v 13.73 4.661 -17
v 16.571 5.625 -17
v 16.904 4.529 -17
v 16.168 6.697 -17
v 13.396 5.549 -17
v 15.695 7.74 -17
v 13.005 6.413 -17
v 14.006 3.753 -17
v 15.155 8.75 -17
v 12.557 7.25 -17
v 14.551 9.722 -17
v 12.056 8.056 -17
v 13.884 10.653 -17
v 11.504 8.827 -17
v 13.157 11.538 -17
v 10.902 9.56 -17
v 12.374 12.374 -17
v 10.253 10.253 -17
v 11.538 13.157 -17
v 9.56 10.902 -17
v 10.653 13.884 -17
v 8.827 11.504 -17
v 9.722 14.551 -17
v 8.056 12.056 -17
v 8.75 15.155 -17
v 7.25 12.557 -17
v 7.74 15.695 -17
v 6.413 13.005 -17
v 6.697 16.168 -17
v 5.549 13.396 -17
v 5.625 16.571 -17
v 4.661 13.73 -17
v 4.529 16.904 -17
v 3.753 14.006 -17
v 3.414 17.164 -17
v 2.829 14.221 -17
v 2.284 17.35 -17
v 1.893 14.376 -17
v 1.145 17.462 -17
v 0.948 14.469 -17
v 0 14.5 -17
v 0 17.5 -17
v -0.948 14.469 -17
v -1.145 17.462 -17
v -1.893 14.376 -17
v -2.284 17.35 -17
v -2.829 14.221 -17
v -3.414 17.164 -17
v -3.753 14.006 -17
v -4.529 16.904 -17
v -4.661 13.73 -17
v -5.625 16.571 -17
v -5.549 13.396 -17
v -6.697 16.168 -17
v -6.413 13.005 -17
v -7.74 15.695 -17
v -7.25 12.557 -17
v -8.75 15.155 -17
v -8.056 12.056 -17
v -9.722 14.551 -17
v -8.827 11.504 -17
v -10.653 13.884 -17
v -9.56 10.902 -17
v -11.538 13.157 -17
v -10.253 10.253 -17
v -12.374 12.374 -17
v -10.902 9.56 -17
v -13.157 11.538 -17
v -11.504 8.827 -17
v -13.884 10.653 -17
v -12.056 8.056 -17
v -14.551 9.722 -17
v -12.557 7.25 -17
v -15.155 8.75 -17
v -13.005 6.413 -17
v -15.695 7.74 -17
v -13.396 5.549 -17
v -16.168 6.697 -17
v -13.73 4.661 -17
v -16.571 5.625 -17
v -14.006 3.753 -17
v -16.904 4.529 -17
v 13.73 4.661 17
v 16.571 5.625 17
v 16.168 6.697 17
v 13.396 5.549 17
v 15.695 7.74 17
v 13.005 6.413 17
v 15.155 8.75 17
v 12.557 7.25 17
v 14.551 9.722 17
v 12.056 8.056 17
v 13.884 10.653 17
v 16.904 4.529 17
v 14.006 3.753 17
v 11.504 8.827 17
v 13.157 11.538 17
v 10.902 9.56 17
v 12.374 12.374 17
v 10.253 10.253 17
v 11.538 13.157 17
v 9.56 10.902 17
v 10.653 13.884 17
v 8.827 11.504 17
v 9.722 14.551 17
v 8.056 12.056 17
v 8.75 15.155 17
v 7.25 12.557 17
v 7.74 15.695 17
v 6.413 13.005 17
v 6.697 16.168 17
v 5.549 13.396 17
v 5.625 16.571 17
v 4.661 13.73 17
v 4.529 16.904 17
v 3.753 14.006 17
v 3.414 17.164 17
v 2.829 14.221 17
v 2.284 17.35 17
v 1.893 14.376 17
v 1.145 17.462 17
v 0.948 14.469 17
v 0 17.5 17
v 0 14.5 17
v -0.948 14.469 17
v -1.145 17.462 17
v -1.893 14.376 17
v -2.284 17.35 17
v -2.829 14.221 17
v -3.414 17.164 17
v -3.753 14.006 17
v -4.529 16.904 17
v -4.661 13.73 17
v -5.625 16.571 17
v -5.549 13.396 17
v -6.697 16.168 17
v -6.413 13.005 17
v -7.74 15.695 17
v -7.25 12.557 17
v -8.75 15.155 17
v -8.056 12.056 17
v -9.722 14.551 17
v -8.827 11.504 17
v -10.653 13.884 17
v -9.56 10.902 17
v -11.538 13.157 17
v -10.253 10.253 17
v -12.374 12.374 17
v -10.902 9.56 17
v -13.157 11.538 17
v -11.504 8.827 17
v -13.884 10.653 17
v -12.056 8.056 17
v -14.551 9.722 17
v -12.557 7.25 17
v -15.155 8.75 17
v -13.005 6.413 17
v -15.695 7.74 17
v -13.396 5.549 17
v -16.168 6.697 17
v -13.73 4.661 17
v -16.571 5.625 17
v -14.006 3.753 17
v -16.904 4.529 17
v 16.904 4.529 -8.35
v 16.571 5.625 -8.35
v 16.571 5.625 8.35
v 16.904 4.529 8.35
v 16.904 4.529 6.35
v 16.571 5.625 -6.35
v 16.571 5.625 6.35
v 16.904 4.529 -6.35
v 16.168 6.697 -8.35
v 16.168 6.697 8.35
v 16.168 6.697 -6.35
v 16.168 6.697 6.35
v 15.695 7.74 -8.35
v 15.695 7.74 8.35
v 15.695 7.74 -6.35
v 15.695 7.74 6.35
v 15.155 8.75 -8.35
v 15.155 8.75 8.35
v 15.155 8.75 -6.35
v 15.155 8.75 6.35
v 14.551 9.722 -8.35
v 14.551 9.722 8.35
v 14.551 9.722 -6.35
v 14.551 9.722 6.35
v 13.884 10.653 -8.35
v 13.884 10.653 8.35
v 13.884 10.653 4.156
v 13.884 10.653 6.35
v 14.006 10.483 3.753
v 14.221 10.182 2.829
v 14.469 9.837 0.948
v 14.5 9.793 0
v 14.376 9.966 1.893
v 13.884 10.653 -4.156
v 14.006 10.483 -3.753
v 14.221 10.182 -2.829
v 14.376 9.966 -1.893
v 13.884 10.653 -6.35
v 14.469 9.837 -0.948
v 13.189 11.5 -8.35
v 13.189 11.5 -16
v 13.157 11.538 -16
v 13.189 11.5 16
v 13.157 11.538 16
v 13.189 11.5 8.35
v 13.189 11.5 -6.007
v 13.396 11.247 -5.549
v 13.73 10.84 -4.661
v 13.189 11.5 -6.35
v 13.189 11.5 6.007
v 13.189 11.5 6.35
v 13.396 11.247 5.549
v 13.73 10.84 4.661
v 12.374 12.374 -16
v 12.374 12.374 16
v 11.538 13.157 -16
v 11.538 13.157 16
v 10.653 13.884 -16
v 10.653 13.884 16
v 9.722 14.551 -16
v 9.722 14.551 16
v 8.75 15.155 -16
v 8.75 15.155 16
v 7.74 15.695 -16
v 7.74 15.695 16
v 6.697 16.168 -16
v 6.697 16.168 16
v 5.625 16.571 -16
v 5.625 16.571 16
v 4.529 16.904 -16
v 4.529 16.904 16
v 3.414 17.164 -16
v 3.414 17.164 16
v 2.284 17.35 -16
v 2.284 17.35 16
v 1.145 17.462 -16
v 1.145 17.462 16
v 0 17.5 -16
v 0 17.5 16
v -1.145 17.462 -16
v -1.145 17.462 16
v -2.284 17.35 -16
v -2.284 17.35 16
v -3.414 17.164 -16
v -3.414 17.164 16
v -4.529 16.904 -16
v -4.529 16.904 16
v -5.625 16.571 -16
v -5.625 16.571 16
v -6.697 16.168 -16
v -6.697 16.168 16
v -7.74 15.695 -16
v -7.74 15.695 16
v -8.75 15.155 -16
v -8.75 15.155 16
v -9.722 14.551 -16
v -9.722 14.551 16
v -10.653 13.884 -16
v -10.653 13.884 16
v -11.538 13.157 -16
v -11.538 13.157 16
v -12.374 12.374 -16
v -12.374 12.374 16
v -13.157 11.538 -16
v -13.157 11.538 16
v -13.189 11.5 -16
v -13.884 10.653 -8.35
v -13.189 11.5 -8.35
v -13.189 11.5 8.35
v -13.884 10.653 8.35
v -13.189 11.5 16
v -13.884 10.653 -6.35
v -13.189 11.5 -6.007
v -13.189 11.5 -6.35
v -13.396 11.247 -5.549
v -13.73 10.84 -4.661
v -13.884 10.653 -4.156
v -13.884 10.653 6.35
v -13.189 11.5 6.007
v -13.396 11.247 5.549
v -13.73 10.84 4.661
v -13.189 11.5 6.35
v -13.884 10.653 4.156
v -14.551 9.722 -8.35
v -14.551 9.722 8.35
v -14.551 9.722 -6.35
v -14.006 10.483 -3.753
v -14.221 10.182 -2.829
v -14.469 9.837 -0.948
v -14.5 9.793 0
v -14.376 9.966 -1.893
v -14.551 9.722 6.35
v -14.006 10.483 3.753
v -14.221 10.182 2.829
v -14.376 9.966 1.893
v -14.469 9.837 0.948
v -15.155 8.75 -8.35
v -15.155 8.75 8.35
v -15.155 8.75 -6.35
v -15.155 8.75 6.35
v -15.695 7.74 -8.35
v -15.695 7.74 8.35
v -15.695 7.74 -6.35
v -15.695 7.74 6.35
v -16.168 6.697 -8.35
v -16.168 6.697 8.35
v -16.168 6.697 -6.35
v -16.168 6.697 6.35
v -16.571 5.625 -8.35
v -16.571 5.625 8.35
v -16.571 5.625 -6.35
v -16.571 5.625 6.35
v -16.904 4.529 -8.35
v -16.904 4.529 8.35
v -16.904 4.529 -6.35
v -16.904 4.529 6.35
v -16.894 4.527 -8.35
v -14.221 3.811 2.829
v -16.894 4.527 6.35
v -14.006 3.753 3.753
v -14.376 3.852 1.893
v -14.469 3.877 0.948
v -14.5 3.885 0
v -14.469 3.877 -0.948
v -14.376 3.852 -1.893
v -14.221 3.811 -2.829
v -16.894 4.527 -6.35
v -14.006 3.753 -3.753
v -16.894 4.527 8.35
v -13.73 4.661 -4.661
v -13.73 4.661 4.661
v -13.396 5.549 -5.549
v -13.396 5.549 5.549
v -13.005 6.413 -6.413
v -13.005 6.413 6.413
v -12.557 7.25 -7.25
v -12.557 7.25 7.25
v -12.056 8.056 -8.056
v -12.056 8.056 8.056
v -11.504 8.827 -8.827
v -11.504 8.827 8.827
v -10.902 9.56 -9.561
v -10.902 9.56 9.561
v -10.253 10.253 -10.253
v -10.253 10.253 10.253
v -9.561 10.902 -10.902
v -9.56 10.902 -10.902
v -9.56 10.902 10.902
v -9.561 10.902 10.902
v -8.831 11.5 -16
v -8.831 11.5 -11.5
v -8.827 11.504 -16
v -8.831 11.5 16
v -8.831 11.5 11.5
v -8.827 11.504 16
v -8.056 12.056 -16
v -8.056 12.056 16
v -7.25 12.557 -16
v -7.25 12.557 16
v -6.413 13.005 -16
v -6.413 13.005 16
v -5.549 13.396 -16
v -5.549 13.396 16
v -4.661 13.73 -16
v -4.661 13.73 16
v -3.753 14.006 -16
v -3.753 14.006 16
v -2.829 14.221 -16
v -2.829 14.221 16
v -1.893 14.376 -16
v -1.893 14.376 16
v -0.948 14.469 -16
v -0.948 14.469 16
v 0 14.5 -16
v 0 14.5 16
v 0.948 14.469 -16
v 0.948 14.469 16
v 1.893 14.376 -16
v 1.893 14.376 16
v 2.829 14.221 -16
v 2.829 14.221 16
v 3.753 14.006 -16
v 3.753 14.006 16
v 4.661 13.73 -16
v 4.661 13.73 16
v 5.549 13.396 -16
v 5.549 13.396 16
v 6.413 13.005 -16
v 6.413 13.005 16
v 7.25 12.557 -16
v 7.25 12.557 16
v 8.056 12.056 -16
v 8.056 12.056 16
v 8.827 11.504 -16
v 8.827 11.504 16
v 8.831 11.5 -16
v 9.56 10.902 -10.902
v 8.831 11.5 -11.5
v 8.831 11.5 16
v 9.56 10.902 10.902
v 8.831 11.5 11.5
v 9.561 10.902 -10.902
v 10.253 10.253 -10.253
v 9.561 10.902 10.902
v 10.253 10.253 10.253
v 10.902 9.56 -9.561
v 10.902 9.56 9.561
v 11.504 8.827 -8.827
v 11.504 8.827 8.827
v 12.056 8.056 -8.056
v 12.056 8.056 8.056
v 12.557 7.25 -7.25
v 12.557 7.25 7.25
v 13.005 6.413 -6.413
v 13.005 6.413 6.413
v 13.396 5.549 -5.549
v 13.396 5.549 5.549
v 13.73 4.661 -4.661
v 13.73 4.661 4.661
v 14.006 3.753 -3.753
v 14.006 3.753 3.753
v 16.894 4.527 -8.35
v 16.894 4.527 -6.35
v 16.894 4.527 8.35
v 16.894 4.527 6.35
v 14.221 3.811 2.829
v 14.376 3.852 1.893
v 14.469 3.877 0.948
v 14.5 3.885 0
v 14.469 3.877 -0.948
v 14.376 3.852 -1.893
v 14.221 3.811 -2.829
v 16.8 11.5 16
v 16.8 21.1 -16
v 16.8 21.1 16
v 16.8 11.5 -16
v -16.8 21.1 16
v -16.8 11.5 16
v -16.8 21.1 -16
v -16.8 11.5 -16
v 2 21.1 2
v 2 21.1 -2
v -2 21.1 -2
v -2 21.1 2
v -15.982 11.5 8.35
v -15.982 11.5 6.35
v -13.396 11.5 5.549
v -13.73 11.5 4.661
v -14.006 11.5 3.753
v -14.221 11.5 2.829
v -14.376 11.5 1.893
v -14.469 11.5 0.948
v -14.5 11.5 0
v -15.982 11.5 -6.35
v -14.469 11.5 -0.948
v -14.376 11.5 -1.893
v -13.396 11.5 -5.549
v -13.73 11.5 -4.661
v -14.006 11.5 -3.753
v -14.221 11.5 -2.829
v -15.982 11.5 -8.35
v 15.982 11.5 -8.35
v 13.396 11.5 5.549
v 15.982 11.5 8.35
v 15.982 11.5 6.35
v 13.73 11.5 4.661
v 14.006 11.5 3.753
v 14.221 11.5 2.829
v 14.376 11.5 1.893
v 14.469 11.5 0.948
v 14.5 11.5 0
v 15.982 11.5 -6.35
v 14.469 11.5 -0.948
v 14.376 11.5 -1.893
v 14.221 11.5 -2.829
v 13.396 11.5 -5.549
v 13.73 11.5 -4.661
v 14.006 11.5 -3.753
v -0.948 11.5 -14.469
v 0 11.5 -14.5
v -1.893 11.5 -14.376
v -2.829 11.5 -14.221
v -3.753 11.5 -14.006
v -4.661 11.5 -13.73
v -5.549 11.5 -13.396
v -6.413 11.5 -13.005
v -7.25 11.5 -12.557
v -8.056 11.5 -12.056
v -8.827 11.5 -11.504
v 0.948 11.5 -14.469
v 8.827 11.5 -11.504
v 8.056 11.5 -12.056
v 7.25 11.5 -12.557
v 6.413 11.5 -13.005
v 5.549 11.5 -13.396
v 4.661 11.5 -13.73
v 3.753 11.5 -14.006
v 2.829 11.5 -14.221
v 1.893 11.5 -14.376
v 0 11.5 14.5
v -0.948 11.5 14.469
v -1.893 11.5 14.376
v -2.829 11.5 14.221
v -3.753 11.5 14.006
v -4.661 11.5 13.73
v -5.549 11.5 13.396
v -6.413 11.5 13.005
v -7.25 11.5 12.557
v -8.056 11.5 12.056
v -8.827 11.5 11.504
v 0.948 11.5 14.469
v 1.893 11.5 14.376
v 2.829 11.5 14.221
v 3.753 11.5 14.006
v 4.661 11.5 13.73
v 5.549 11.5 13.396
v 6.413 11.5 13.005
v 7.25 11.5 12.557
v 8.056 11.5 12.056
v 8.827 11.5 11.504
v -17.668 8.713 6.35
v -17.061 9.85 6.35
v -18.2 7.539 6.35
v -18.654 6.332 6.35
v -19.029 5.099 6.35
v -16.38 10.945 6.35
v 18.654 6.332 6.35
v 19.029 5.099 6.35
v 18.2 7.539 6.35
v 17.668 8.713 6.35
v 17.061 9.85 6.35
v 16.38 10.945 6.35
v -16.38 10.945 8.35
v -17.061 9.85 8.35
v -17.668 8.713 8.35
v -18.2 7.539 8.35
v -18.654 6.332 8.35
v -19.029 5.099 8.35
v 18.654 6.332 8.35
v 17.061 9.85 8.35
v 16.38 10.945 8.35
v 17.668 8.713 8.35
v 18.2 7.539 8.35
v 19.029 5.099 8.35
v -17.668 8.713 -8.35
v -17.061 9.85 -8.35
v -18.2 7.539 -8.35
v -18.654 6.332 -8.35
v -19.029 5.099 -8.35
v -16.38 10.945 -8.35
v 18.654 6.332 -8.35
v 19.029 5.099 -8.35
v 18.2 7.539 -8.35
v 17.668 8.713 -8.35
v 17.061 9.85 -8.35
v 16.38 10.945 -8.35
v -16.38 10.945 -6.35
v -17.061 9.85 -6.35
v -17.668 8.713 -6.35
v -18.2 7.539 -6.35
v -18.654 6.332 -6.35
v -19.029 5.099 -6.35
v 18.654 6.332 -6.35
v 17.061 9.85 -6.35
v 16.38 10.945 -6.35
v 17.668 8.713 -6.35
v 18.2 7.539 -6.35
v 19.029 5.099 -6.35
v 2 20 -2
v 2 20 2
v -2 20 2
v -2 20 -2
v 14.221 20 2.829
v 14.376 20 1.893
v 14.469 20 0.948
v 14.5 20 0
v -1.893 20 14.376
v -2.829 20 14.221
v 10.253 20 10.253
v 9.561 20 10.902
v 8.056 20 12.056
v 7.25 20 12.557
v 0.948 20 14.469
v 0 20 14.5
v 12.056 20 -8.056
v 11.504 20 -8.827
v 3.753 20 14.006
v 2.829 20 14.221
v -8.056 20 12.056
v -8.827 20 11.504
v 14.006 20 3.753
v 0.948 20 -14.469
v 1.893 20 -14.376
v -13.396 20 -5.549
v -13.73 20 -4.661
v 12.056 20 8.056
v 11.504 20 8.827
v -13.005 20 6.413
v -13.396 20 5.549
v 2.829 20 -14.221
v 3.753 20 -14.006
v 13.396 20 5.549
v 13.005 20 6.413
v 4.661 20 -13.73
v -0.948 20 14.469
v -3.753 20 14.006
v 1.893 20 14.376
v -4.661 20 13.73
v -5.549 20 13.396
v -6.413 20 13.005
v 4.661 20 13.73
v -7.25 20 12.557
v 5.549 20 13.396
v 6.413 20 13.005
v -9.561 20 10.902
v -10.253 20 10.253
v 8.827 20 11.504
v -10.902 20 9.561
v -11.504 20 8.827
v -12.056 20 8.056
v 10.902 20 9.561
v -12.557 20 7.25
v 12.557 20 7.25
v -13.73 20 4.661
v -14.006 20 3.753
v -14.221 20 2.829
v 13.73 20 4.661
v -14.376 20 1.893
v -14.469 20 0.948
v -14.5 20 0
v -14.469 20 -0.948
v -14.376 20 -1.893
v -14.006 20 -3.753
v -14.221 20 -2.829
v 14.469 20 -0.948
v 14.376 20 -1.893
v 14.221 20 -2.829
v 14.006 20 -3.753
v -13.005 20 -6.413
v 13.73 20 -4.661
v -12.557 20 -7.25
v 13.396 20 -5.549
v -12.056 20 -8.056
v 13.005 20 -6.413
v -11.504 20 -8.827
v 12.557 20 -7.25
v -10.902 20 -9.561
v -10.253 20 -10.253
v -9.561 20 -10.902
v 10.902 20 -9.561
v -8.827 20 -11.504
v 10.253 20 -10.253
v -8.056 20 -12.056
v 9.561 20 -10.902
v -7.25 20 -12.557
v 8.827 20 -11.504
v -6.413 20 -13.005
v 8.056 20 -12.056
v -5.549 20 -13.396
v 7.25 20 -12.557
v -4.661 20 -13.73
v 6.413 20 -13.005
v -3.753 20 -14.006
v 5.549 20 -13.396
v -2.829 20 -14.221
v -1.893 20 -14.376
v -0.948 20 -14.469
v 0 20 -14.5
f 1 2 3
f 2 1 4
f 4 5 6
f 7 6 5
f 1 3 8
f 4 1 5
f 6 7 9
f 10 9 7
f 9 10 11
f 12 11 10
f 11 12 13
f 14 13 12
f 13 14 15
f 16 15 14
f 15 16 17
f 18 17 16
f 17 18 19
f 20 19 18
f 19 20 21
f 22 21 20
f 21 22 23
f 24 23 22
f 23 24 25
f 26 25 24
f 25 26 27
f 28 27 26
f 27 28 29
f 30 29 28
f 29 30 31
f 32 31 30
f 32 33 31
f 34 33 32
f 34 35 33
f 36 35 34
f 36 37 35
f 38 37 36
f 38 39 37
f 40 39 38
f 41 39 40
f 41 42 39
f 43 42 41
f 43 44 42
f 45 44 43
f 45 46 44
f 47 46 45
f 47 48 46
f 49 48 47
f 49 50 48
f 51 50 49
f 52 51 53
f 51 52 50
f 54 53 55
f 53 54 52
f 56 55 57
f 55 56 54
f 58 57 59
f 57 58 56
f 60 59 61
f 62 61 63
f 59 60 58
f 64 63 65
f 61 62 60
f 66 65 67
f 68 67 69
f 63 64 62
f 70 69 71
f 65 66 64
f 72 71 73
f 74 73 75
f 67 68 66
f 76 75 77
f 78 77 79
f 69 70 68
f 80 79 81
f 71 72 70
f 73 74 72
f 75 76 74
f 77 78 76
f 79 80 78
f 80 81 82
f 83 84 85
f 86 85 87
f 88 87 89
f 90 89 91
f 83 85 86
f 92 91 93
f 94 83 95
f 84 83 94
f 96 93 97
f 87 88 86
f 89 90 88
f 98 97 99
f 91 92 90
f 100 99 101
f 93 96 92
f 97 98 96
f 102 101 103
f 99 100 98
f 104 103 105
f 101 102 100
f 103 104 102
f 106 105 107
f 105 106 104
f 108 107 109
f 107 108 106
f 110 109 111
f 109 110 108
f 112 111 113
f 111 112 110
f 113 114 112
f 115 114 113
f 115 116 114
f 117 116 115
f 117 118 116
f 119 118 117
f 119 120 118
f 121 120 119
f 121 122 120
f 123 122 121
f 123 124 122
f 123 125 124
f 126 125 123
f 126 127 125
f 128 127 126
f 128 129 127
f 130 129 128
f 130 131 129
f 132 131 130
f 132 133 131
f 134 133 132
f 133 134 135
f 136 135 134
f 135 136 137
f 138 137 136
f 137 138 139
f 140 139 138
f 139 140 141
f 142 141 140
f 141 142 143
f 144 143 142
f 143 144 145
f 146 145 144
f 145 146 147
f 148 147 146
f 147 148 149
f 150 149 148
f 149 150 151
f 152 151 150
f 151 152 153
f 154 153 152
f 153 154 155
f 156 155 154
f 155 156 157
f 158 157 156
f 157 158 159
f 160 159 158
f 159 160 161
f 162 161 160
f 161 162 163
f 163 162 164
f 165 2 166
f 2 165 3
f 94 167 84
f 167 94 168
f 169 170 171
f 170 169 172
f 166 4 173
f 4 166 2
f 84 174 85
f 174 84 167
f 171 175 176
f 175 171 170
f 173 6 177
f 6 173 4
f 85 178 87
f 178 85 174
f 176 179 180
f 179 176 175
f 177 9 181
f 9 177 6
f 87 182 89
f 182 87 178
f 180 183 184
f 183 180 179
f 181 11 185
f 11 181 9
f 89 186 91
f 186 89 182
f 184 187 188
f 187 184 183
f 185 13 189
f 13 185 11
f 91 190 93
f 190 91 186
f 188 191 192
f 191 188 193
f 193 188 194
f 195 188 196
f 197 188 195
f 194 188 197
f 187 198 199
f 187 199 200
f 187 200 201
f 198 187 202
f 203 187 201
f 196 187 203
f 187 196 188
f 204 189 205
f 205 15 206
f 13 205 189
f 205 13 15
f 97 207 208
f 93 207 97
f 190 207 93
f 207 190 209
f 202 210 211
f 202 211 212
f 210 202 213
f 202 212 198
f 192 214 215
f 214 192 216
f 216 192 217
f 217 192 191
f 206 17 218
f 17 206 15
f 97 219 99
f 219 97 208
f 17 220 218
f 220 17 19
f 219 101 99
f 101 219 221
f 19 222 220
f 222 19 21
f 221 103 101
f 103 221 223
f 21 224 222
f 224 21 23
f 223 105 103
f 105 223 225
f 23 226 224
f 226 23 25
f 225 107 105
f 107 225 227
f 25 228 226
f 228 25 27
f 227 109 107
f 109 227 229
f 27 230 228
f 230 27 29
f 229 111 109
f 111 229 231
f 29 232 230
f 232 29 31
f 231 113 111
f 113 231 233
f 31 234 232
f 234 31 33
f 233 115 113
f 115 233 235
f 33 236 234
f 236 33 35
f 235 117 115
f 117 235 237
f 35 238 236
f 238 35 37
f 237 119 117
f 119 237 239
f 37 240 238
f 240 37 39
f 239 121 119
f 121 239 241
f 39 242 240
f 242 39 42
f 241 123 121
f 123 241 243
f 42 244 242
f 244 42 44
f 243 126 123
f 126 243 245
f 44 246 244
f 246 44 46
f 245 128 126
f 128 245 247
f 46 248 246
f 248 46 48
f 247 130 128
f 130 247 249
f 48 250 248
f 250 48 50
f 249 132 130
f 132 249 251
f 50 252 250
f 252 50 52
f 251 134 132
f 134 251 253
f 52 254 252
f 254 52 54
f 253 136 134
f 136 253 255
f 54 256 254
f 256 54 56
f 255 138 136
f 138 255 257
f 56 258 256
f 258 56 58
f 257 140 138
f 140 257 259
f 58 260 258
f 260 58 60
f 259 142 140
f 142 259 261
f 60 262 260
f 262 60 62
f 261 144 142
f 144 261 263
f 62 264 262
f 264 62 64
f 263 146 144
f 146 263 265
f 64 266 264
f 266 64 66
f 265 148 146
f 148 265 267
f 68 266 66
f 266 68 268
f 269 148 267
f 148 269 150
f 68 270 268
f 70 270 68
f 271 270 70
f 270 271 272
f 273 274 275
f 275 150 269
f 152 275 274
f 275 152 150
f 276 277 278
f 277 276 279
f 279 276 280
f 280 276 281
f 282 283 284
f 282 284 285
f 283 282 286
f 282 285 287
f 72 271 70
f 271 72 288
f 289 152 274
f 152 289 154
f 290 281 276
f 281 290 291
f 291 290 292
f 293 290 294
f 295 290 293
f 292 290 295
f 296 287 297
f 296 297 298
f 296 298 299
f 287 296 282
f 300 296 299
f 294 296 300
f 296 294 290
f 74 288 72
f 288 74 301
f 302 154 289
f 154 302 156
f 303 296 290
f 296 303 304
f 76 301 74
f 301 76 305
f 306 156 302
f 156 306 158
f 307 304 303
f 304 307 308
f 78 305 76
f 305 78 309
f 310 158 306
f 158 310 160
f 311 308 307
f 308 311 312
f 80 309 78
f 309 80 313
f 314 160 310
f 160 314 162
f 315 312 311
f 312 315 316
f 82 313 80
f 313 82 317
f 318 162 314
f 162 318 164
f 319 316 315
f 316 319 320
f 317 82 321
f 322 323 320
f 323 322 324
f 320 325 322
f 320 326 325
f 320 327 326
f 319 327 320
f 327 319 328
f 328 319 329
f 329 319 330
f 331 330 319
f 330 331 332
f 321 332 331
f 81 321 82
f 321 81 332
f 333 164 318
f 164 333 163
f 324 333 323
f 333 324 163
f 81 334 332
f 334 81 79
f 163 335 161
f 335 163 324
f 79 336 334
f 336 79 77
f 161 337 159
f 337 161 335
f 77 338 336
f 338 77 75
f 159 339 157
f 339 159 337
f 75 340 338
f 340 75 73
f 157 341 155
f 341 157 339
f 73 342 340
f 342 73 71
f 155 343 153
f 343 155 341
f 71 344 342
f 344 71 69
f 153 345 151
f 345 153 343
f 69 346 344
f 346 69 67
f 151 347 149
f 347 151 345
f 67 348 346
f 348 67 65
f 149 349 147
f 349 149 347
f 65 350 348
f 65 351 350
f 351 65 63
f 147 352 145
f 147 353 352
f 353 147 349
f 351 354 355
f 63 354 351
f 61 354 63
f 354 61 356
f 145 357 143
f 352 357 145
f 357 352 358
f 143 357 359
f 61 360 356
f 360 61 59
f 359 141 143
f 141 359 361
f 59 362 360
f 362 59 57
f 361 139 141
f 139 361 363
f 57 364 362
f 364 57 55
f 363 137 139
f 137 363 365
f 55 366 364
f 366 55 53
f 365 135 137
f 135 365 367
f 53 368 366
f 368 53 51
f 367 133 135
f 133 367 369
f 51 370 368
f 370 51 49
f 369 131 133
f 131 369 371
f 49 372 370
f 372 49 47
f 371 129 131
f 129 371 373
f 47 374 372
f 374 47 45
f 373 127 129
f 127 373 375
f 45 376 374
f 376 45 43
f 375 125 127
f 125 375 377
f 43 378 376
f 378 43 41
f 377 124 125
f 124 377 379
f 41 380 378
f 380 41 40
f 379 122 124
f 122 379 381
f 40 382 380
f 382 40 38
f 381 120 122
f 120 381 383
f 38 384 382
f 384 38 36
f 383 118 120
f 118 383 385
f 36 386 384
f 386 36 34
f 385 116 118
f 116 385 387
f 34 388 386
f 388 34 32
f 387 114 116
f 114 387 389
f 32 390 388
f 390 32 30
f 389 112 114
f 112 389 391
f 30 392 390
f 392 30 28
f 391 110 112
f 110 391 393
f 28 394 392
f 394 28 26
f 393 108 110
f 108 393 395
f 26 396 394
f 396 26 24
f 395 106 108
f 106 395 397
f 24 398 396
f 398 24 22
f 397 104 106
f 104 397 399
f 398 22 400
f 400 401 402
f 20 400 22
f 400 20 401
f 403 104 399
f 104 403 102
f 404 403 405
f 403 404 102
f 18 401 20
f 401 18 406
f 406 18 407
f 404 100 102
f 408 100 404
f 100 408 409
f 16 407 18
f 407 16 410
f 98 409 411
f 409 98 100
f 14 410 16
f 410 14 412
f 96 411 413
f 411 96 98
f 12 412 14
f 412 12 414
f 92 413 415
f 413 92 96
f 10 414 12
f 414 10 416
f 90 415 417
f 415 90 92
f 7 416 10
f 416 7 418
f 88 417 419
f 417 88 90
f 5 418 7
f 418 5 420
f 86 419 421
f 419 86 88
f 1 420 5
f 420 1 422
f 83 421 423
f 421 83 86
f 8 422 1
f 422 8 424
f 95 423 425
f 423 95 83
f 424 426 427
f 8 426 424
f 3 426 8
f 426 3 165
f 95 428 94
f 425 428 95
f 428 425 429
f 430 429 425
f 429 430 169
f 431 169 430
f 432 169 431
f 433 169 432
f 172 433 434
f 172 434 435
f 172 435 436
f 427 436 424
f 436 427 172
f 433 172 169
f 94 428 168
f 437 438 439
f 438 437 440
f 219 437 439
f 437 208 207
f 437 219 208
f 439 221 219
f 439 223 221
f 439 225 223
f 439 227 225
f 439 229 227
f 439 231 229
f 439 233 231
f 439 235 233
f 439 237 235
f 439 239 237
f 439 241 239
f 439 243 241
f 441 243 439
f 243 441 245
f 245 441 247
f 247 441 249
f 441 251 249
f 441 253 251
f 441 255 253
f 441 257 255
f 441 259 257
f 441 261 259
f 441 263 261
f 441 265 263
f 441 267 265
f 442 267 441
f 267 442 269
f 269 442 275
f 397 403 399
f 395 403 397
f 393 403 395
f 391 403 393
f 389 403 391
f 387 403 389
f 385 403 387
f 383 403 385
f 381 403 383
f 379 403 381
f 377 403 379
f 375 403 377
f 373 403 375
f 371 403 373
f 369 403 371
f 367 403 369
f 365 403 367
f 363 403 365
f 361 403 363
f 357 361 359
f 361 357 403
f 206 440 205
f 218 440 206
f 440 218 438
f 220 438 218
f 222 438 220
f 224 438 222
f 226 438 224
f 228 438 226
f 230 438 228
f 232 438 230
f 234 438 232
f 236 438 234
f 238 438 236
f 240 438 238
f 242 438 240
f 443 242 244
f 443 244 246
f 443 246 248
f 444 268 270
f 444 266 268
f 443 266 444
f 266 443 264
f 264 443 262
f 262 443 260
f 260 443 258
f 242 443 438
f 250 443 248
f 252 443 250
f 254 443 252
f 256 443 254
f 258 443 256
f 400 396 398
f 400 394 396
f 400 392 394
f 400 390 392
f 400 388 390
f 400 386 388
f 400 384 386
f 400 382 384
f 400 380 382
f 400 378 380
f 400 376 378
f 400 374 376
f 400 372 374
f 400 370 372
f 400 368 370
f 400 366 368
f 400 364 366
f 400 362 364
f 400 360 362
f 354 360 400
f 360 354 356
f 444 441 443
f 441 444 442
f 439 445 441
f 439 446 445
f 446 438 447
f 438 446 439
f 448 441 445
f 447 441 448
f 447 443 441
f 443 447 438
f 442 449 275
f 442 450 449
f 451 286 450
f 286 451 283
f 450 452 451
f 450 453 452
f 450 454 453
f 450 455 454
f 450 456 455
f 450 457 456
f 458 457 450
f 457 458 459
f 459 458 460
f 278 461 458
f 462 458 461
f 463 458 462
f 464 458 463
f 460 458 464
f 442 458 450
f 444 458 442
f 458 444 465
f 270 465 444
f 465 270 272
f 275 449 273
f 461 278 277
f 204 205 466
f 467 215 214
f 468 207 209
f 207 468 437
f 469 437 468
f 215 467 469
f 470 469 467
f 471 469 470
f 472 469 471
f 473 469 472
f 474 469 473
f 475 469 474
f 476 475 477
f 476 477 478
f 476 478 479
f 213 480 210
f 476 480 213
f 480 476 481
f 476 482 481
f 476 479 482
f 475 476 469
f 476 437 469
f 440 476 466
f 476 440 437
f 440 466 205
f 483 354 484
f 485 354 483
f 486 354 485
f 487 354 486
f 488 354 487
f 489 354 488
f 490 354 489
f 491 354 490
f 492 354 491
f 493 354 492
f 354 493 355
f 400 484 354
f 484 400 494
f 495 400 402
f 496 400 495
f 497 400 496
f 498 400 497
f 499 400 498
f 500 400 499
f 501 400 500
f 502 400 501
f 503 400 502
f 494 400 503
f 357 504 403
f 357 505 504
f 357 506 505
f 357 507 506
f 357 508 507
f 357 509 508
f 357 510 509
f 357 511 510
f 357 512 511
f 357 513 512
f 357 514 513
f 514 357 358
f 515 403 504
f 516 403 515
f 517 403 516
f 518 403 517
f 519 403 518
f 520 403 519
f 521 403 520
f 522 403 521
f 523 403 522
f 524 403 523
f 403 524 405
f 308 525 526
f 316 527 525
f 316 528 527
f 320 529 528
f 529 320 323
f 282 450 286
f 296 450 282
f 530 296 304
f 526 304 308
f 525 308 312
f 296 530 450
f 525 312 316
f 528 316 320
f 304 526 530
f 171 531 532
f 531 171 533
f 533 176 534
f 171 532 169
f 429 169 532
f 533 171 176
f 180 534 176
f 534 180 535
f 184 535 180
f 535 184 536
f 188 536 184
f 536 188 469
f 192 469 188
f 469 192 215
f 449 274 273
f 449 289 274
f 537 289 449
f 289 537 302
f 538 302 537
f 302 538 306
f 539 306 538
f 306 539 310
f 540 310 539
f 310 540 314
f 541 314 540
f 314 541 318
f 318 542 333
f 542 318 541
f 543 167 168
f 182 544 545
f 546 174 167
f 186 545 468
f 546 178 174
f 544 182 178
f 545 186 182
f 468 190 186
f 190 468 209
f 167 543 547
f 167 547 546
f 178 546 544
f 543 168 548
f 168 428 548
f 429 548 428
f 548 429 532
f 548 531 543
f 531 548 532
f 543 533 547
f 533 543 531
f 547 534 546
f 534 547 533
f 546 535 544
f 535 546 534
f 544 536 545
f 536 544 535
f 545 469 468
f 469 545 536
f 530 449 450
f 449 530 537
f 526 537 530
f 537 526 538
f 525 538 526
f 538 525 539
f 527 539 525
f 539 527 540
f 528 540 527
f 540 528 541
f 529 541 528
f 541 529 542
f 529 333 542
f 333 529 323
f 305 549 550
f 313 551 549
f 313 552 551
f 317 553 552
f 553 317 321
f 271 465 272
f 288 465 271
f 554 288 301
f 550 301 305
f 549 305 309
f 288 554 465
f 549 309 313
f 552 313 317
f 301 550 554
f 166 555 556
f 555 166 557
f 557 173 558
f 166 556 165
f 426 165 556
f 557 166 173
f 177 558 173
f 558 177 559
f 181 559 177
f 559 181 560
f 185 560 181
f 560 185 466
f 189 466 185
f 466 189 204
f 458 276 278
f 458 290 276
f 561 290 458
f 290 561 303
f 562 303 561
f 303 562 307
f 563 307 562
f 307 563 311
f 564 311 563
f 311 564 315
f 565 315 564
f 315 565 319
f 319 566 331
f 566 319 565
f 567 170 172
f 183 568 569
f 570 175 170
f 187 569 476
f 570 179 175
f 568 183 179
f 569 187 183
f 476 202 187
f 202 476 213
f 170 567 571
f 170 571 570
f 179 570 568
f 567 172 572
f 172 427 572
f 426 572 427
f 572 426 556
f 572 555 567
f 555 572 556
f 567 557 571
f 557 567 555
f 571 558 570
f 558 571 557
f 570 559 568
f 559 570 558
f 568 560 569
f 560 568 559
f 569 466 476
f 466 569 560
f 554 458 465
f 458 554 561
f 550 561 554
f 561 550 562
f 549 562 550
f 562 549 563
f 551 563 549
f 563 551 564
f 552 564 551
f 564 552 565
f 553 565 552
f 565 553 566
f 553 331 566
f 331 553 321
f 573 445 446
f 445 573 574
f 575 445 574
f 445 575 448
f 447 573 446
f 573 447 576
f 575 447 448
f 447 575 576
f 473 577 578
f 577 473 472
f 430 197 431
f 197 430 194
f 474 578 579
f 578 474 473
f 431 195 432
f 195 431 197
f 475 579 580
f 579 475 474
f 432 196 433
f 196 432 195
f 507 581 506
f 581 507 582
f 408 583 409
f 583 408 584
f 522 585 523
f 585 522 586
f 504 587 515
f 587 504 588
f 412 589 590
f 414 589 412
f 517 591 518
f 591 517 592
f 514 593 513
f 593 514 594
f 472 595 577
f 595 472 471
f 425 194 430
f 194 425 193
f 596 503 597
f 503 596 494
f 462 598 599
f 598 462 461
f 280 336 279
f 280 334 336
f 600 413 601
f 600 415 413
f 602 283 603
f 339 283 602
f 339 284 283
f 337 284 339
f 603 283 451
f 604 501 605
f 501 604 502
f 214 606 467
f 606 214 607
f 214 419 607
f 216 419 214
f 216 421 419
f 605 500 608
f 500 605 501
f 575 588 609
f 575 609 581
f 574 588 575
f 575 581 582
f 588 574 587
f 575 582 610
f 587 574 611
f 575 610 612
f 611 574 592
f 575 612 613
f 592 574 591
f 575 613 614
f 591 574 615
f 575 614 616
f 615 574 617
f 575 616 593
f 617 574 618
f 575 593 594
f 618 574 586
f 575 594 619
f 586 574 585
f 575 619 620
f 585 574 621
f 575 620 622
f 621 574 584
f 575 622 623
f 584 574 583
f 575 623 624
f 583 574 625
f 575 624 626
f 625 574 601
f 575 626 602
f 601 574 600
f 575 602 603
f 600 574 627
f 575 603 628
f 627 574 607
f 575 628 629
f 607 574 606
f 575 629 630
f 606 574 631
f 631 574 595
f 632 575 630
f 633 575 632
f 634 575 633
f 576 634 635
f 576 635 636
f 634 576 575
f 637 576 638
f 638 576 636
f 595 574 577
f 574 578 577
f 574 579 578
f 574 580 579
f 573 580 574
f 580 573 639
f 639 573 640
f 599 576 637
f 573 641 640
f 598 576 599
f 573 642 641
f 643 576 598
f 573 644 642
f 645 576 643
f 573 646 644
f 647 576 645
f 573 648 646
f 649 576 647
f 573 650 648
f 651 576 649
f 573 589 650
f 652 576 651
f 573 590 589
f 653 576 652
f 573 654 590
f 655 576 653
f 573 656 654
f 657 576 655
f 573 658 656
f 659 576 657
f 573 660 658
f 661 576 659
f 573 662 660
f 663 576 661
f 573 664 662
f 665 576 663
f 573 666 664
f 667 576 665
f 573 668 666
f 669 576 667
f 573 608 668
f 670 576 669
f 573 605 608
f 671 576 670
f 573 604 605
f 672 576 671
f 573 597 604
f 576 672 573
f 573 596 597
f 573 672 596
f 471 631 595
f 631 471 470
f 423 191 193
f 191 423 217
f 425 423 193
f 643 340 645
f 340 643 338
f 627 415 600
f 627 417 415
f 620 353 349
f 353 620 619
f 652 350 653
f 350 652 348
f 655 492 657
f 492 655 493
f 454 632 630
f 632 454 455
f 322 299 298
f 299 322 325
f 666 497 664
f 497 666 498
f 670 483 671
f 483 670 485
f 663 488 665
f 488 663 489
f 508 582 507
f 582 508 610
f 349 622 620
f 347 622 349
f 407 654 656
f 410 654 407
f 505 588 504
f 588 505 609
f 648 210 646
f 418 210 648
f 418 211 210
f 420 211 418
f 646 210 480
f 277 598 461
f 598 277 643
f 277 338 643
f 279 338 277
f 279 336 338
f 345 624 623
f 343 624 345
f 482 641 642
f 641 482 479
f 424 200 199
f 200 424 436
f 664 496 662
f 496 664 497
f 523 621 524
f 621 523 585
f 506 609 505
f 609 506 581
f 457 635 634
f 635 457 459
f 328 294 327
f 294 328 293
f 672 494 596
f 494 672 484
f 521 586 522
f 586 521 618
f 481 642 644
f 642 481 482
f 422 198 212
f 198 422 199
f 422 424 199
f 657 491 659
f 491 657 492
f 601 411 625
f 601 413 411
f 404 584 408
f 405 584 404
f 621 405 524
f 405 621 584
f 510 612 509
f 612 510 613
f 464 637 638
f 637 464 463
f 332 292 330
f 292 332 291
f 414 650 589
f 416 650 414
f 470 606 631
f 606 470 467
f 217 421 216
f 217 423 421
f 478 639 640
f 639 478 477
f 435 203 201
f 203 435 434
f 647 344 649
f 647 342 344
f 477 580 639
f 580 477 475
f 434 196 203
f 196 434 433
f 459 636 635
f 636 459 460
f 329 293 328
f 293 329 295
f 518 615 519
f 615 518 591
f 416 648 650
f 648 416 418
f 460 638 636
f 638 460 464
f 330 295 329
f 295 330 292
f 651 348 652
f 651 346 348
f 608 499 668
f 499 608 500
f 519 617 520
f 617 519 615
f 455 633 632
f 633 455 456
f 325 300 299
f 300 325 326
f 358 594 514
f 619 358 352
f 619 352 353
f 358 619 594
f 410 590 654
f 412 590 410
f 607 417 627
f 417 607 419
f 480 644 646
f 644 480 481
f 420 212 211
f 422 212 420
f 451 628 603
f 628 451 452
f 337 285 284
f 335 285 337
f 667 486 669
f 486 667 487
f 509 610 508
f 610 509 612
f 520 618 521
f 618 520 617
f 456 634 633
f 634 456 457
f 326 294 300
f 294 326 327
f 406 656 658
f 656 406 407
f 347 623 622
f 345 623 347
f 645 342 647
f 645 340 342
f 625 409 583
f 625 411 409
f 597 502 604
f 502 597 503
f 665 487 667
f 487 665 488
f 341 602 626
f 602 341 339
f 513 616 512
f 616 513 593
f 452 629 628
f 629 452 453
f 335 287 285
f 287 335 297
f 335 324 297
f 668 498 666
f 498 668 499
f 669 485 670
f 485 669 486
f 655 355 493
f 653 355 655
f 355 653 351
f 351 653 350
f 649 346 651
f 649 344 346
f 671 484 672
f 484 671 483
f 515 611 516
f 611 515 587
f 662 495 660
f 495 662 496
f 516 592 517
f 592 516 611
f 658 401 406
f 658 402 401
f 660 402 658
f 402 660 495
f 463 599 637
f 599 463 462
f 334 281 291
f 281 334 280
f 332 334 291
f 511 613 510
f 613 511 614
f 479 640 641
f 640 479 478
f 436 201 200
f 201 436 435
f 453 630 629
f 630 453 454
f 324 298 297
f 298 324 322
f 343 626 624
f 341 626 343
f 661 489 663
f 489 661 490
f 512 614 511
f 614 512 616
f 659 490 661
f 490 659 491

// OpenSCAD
// file: saddle.scad
// =============================================================================
// saddle.scad — parametric pipe saddle that carries a 27 mm piezo disc.
// Shared by clamp.scad (sensor) and exciter_mount.scad (reference exciter).
// Frame: pipe axis = Z; pipe center at origin; crown (piezo) at +Y.
//
// Band retention is ADDITIVE (raised ridges the hose-clamp band nests between)
// rather than subtractive grooves — grooves cut through the thin side legs and
// detach a wing. Ridges keep the part a single manifold solid.
// =============================================================================
include <config.scad>

// 2D wedge polygon spanning [a0,a1] degrees, radius r, apex at origin.
module sector2d(r, a0, a1) {
    step = 3;
    pts = concat(
        [[0, 0]],
        [ for (a = [a0 : step : a1]) [r * cos(a), r * sin(a)] ],
        [[r * cos(a1), r * sin(a1)]]
    );
    polygon(pts);
}

function outer_r_of() = pipe_r + seat_clear + sad_wall;

// 2D cross-section of the wrap shell (annular sector centered on +Y / 90 deg).
module saddle_section(rc, outer_r, wrap_deg) {
    intersection() {
        difference() { circle(r = outer_r); circle(r = rc); }
        sector2d(outer_r + 1, 90 - wrap_deg / 2, 90 + wrap_deg / 2);
    }
}

// Raised ridge (additive) that stops the band sliding along the pipe axis.
module band_ridge(z, wrap_deg) {
    orr = outer_r_of();
    translate([0, 0, z])
        linear_extrude(height = 2.0, center = true)
            intersection() {
                difference() { circle(orr + band_t + 1.0); circle(orr - eps); }
                sector2d(orr + band_t + 2, 90 - wrap_deg/2, 90 + wrap_deg/2);
            }
}

// Crown boss: extra material at +Y so the piezo pocket has depth to live in.
module crown_boss(len) {
    rc = pipe_r + seat_clear;
    boss_w = piezo_pocket_d + 2 * sad_wall;      // across the pipe (X)
    boss_l = min(len - 2, piezo_pocket_d + 8);   // along the pipe (Z)
    boss_top = rc + piezo_pocket_h + pad_recess_h + 1.6;
    translate([-boss_w/2, rc - 3, -boss_l/2])
        cube([boss_w, boss_top - (rc - 3), boss_l]);
}

// Piezo pocket + compliant-pad recess + wire slot, cut radially at the crown.
module piezo_cavity(rc, len) {
    // Pocket for the disc (free fit), opening toward the pipe (-Y into channel).
    translate([0, rc - eps, 0]) rotate([-90, 0, 0])
        cylinder(h = piezo_pocket_h, d = piezo_pocket_d);
    // Compliant-pad recess behind the disc (narrower).
    translate([0, rc - eps + piezo_pocket_h, 0]) rotate([-90, 0, 0])
        cylinder(h = pad_recess_h + eps, d = pad_recess_d);
    // Wire exit slot straight out through the crown.
    translate([-wire_slot_w/2, rc, -wire_slot_w/2])
        cube([wire_slot_w, outer_r_of() + pad_recess_h + 6, wire_slot_w]);
}

// Foam-retention lip: two end flanges the closed-cell foam tucks under.
module foam_lip(len, wrap_deg) {
    orr = outer_r_of();
    for (s = [-1, 1])
        translate([0, 0, s * (len/2 - foam_lip_t/2)])
            linear_extrude(height = foam_lip_t, center = true)
                intersection() {
                    difference() { circle(orr + foam_lip_h); circle(orr - eps); }
                    sector2d(orr + foam_lip_h + 1, 90 - wrap_deg/2 - 6, 90 + wrap_deg/2 + 6);
                }
}

// Full saddle. with_foam adds the foam retention flanges (sensor only).
module saddle(len, wrap, with_foam = true) {
    rc  = pipe_r + seat_clear;
    orr = outer_r_of();
    band_gap = band_w / 2 + 1.0;   // ridges flank a central band seat
    difference() {
        union() {
            linear_extrude(height = len, center = true) saddle_section(rc, orr, wrap);
            crown_boss(len);
            band_ridge( band_gap, wrap);
            band_ridge(-band_gap, wrap);
            if (with_foam) foam_lip(len, wrap);
        }
        piezo_cavity(rc, len);
        // Re-assert the pipe bore so nothing intrudes on the pipe surface.
        rotate([90, 0, 0]) cylinder(h = len + 6, r = rc, center = true);
    }
}
// file: config.scad
// =============================================================================
// config.scad — SINGLE SOURCE OF TRUTH for every numeric parameter.
// Acoustic Pipe Monitor: sensor saddle, enclosure, exciter mount.
// Units: millimetres. Target: 1" copper main, OD 28.6 mm. Material: PETG.
// =============================================================================

// ---- Global print/fit ----
$fn            = 96;    // curve smoothness for final render (drop to 48 for quick iterations)
eps            = 0.01;  // tiny overlap to avoid coplanar-face artifacts
fit_press      = 0.2;   // interference / press-fit
fit_snug       = 0.3;   // snug locating fit
fit_free       = 0.4;   // free sliding fit

// ---- Pipe ----
pipe_od        = 28.6;              // 1" nominal copper OD (operator input)
pipe_r         = pipe_od / 2;       // 14.3
seat_clear     = 0.2;               // saddle channel clearance over the pipe
kapton_gap     = 0.25;              // piezo-to-pipe isolation standoff (grease+Kapton sandwich)

// ---- Piezo disc (sensor + exciter, spec BOM item 4) ----
piezo_d        = 27.0;
piezo_pocket_d = piezo_d + 0.6;     // 27.6 — FREE fit; never press a fragile disc
piezo_t        = 0.6;               // brass carrier thickness (measure yours; 27mm ~0.5-0.6)
piezo_pocket_h = 2.0;               // pocket depth (disc + a little)
pad_recess_d   = 24.0;             // compliant-pad recess behind the disc
pad_recess_h   = 3.0;
wire_slot_w    = 4.0;               // exit for the two solder leads

// ---- Sensor saddle ----
sad_wall       = 3.0;               // structural wall around the pipe channel
sad_len        = 40.0;              // length along the pipe axis
sad_wrap_deg   = 150;               // channel wrap angle (<=160 keeps crown support-free)
band_w         = 12.7;              // 1/2" stainless hose-clamp band width
band_t         = 1.2;               // band thickness + clearance
band_inset     = 6.0;              // distance of band channel from each saddle end
foam_lip_h     = 4.0;               // shroud lip retaining closed-cell foam over the assembly
foam_lip_t     = 1.6;

// ---- Exciter saddle (slimmer; same piezo) ----
// Must exceed piezo_pocket_d so the crown pocket does not slice off the ends.
exc_len        = 34.0;
exc_wrap_deg   = 150;
exciter_spacing = 300.0;            // nominal sensor<->exciter distance (informational; set by tape)

// ---- Enclosure (hybrid: printed shell + copper lining) ----
enc_ix         = 92.0;   // internal X (ESP32-S3-DevKitC-1 ~63x26 + PCM1808 + charge-amp board)
enc_iy         = 62.0;   // internal Y
enc_iz         = 32.0;   // internal Z (headroom for headers)
enc_wall       = 2.4;    // 6 perimeters @ 0.4 nozzle
enc_floor      = 2.4;
lid_h          = 6.0;    // lid skirt height
lid_reg        = 1.6;    // register lip depth into the body
lid_reg_clear  = fit_snug;

// Copper-lined Faraday pocket over the charge-amp summing node
cu_pocket_x    = 40.0;
cu_pocket_y    = 30.0;
cu_pocket_d    = 1.2;    // recess depth for copper tape/paint
ground_boss_d  = 8.0;    // single-point analog ground boss
ground_boss_h  = 6.0;
ground_tap_d   = 2.5;    // pilot for an M3 self-tapping ground screw

// PCB standoffs
pcb_x          = 63.0;   // DevKitC-1 footprint
pcb_y          = 26.0;
standoff_d     = 6.0;
standoff_h     = 5.0;
standoff_pilot = 2.5;    // M3 self-tap pilot
pcb_hole_inset = 3.0;    // hole center inset from pcb corner (typical)

// Cable entries (slit glands)
gland_d        = 6.0;
gland_slit_w   = 1.6;    // slit so a pre-terminated lead can be seated

// Corner screw bosses (lid -> body)
screw_boss_d   = 7.0;
screw_pilot_d  = 2.6;    // M3 self-tap
screw_clear_d  = 3.4;    // M3 clearance in the lid
// main file
// =============================================================================
// exciter_mount.scad — slim saddle for the reference-exciter piezo.
// Identical isolation approach; placed ~300 mm along the pipe from the sensor
// (exciter_spacing in config.scad; set by tape measure, not printed rail).
// Build: openscad -o ../stl/exciter_mount.stl exciter_mount.scad
// =============================================================================
include <config.scad>
use <saddle.scad>

saddle(len = exc_len, wrap = exc_wrap_deg, with_foam = false);
